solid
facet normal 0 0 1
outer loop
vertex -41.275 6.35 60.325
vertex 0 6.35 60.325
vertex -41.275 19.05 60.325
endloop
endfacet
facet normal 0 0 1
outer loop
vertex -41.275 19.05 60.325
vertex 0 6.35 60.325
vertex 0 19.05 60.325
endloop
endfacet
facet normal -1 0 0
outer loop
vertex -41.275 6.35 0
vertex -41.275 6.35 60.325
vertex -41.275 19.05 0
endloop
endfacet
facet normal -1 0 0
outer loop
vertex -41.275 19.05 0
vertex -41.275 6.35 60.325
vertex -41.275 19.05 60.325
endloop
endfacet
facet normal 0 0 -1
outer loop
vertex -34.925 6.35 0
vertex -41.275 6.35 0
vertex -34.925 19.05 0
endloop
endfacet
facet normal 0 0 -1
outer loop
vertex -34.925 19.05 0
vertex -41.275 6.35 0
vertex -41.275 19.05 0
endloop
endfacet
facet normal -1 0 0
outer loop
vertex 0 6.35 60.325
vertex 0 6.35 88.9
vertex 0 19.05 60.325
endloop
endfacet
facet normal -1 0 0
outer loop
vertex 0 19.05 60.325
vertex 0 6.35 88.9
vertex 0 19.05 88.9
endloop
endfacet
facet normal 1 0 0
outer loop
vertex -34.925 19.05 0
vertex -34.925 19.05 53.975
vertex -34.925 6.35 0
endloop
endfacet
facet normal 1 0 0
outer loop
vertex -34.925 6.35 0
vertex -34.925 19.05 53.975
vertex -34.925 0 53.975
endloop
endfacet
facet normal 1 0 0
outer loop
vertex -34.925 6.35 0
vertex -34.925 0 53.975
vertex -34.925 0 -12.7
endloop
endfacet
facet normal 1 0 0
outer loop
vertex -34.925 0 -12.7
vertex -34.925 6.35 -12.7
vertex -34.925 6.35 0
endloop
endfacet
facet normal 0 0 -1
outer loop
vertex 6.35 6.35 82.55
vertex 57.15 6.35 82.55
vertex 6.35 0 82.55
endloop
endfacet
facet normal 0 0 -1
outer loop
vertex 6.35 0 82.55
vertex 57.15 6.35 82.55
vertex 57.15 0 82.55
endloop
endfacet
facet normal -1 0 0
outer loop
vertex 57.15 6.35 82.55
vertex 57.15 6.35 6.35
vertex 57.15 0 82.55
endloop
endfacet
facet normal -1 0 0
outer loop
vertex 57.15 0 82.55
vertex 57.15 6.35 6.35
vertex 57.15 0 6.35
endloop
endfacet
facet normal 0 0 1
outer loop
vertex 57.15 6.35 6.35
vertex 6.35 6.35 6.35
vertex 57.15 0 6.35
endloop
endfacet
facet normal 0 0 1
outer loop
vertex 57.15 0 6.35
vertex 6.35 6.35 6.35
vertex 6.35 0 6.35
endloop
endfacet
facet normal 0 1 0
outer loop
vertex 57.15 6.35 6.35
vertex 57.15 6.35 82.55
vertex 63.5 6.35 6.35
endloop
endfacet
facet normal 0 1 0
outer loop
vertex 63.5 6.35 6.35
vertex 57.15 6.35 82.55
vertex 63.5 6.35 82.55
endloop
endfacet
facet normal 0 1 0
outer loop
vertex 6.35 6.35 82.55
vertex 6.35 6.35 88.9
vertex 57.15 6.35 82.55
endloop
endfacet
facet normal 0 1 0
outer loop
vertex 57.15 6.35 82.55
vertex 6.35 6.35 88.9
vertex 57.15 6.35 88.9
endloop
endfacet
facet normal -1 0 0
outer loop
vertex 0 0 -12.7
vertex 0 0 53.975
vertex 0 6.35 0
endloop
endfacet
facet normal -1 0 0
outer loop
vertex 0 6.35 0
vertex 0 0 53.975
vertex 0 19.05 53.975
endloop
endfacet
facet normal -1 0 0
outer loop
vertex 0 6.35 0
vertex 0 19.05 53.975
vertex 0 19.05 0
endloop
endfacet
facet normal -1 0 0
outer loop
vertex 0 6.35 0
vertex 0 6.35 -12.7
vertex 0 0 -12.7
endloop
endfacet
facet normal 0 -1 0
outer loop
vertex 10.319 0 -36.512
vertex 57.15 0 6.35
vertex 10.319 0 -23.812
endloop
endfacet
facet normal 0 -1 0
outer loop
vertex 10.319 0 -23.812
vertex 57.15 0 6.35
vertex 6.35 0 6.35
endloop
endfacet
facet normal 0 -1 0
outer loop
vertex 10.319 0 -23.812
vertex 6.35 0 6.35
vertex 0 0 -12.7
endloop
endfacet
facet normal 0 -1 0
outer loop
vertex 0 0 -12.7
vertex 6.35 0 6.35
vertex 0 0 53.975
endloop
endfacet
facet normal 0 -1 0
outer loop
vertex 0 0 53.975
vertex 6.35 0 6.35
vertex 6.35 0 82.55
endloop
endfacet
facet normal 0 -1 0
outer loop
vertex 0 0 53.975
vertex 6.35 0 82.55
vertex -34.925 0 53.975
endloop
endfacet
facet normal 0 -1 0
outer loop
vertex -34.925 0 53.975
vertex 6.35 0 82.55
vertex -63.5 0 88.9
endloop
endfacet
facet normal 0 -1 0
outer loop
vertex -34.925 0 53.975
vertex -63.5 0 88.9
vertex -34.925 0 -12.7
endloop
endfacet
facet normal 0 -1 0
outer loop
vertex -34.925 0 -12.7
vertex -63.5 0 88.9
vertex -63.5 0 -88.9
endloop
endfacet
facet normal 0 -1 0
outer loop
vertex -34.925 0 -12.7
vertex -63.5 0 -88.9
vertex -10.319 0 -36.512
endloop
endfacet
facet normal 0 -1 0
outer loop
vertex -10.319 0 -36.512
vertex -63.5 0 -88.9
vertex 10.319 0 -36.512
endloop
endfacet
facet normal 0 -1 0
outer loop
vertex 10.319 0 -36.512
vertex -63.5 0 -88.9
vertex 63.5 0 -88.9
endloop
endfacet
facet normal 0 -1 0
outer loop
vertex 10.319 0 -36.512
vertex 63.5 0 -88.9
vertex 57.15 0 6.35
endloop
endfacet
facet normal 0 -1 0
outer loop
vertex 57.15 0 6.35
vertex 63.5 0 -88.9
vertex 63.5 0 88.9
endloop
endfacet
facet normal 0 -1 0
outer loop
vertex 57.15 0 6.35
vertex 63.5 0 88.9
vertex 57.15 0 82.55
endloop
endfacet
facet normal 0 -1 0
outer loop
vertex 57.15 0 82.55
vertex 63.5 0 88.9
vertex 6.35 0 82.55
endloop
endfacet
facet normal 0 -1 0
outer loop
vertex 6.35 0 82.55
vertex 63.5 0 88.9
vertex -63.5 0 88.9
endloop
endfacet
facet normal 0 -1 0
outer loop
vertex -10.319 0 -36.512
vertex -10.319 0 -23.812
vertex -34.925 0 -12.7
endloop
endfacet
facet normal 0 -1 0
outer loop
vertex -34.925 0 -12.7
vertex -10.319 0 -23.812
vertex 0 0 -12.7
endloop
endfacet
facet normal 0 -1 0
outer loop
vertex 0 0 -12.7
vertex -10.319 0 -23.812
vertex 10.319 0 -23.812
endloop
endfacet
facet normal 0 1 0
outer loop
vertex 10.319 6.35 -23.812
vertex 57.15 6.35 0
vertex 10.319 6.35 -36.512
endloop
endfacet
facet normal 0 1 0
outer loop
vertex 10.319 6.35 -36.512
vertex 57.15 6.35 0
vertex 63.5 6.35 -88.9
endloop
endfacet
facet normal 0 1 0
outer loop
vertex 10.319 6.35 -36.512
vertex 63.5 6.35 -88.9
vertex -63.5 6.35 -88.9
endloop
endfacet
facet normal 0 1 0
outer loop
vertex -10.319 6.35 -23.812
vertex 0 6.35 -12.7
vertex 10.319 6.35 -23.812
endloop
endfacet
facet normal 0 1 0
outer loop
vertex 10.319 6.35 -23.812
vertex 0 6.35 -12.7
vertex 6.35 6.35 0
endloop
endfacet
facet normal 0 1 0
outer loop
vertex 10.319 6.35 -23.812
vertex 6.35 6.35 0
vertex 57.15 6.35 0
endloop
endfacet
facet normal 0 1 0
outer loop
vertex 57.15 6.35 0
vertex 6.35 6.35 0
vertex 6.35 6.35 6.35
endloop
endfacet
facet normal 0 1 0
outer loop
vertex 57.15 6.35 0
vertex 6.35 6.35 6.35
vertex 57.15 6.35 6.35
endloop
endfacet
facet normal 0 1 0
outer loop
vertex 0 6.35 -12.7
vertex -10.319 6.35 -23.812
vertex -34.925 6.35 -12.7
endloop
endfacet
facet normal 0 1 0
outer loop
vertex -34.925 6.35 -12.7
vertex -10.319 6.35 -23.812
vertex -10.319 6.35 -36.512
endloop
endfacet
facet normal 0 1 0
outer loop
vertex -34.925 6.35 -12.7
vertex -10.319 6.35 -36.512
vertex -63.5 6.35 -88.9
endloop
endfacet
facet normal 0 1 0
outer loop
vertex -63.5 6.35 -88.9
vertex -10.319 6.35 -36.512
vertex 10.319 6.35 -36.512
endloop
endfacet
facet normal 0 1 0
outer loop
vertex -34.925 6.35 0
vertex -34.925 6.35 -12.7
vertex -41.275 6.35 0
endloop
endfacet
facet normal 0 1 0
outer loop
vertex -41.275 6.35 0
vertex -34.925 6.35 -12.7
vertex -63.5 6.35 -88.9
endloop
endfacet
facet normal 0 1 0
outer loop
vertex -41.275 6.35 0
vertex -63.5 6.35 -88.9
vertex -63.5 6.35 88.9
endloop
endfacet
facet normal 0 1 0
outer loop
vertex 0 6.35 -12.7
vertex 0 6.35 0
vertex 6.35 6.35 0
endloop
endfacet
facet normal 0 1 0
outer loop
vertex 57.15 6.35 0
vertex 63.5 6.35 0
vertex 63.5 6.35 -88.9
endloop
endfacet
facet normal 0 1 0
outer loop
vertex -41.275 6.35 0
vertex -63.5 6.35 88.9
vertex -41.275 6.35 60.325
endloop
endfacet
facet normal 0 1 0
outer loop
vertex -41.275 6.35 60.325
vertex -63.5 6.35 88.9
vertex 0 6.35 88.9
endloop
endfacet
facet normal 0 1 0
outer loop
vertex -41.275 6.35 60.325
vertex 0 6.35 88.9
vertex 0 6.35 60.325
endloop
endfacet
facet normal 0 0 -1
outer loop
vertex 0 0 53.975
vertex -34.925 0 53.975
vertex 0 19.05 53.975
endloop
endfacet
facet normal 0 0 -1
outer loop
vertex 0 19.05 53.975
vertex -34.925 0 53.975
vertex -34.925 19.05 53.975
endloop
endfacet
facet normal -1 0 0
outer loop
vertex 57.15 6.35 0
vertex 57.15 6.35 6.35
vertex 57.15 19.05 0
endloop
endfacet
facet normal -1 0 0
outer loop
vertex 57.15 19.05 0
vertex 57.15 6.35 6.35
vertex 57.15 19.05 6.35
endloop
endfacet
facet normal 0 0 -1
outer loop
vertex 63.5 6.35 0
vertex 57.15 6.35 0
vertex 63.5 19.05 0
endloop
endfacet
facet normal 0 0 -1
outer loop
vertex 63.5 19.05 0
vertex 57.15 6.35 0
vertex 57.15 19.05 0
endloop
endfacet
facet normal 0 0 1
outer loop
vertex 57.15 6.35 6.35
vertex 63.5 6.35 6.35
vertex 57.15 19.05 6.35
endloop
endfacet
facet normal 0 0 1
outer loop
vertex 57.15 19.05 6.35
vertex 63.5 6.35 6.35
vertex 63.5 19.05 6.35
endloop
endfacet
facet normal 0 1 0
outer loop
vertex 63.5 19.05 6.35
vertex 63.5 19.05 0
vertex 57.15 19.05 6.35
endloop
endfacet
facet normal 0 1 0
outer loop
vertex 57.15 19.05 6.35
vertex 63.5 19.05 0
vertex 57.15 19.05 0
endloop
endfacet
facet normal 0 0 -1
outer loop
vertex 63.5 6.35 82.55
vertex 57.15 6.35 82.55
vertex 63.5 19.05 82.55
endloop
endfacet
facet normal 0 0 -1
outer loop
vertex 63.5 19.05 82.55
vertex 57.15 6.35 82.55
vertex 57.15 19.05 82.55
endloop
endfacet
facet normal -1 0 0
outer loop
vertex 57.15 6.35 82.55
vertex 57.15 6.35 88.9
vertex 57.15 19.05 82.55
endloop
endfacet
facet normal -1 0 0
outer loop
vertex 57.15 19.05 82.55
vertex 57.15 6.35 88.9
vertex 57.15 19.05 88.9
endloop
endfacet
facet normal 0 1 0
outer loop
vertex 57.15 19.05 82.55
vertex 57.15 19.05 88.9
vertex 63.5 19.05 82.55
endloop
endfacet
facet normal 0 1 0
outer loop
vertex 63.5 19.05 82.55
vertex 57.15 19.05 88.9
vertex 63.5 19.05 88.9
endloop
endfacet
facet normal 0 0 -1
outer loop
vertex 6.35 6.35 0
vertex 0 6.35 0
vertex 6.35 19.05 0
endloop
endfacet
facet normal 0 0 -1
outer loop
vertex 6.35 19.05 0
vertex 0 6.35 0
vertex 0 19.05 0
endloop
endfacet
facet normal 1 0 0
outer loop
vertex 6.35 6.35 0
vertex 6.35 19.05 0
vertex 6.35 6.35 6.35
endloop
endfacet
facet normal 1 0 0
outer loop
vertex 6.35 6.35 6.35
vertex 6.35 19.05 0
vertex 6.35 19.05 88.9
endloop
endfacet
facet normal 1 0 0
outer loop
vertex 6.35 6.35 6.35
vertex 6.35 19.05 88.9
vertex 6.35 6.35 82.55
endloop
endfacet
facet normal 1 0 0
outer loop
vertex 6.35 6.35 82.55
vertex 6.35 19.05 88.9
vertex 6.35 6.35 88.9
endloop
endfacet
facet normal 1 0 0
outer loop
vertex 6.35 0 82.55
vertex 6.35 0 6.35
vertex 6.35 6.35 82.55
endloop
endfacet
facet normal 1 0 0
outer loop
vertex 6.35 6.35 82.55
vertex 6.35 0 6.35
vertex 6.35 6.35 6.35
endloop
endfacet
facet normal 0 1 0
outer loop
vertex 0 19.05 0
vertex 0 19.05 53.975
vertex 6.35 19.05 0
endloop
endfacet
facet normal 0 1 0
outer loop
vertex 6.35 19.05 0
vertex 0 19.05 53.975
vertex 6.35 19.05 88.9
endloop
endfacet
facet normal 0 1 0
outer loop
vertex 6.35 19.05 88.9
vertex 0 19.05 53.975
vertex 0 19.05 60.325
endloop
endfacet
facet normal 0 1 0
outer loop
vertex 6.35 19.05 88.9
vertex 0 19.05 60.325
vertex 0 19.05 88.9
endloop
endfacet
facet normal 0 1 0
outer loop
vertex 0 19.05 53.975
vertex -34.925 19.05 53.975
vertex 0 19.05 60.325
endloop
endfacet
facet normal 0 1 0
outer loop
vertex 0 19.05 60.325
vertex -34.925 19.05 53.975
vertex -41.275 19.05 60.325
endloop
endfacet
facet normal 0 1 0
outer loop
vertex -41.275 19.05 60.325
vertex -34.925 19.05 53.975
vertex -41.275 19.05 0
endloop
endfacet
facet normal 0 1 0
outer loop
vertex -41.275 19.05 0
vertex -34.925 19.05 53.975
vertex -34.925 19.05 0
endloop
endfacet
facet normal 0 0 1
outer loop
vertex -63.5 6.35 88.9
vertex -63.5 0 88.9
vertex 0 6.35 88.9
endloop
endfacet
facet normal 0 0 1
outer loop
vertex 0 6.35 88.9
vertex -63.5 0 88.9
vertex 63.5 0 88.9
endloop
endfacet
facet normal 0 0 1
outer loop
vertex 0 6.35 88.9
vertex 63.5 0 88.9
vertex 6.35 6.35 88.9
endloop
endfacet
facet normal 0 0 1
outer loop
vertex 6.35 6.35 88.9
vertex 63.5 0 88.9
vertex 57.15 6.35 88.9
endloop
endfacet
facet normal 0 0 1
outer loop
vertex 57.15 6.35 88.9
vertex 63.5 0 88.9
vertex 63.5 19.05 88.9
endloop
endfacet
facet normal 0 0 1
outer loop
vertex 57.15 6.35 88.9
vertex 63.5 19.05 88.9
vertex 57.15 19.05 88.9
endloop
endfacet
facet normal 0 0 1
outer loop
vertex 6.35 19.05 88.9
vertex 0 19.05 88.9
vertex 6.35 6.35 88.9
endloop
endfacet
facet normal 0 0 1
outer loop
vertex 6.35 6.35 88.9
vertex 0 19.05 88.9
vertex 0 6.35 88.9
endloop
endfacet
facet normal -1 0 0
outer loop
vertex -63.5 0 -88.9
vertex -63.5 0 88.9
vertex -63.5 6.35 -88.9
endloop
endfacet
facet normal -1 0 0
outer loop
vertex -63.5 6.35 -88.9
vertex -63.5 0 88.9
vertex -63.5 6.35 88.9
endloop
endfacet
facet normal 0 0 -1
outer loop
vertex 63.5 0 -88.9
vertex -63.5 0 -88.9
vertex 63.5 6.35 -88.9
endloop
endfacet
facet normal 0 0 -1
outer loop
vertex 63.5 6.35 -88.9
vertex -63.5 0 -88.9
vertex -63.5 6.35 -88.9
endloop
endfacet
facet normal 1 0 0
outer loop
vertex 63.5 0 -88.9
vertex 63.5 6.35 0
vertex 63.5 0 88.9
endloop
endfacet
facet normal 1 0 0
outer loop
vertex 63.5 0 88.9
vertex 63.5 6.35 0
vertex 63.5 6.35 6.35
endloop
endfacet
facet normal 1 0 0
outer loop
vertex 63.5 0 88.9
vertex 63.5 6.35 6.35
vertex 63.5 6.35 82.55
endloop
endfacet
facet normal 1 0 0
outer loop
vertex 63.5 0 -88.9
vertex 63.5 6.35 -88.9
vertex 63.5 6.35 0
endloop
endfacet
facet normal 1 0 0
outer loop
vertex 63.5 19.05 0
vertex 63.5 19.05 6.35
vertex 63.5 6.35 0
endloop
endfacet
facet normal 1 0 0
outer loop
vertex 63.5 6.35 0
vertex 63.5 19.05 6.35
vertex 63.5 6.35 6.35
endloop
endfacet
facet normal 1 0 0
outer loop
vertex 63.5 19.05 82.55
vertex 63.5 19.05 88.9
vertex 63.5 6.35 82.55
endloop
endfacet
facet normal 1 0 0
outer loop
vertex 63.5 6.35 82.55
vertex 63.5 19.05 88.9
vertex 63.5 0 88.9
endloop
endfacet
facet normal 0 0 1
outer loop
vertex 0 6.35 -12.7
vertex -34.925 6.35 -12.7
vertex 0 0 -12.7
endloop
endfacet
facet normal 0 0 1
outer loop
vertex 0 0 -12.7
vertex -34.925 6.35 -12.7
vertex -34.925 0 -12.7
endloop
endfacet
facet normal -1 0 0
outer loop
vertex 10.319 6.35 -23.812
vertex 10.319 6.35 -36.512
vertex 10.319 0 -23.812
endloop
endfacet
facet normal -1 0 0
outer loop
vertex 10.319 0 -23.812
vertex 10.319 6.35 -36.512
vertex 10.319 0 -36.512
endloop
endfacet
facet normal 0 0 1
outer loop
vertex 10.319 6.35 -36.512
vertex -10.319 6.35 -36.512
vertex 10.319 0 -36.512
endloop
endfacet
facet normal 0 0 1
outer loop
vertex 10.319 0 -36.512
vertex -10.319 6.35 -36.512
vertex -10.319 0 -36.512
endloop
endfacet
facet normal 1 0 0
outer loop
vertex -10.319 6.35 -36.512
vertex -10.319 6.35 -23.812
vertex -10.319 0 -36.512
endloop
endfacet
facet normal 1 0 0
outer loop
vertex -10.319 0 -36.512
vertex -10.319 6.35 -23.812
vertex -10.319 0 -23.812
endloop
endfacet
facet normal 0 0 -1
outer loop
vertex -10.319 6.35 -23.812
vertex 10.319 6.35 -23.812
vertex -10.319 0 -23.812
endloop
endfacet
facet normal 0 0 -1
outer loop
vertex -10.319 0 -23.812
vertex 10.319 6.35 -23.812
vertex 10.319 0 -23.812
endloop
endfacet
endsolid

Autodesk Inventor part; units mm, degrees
ref_plane "YZ Plane" through (0, 0, 0) normal (1, 0, 0) x (0, 1, 0)
ref_plane "XZ Plane" through (0, 0, 0) normal (0, 1, 0) x (-1, 0, 0)
ref_plane "XY Plane" through (0, 0, 0) normal (0, 0, 1) x (1, 0, 0)
sketch "Sketch1" plane through (0, 0, 0) normal (0, 1, 0) x (-1, 0, 0)
  line L0 (63.5, 88.9) -> (-63.5, 88.9)
  line L1 (-63.5, 88.9) -> (-63.5, -88.9)
  line L2 (-63.5, -88.9) -> (63.5, -88.9)
  line L3 (63.5, -88.9) -> (63.5, 88.9)
  line L4 (63.5, 88.9) -> (-63.5, -88.9) construction
  line L5 (-63.5, 88.9) -> (63.5, -88.9) construction
  point P0 (0, 0)
  dimension "d0" = 177.8
  dimension "d1" = 127
extrude "main plate" add sketch "Sketch1" along normal blind 6.35
sketch "Sketch4" plane through (0, 6.35, 0) normal (0, 1, 0) x (1, 0, 0)
  line L0 (63.5, -88.9) -> (63.5, 88.9) projected
  line L1 (63.5, -88.9) -> (57.15, -88.9)
  line L2 (57.15, -88.9) -> (57.15, -82.55)
  line L3 (57.15, -82.55) -> (63.5, -82.55)
  line L4 (63.5, -82.55) -> (63.5, -88.9)
  line L5 (57.15, -82.55) -> (6.35, -82.55) construction
  line L6 (57.15, -82.55) -> (57.15, -6.35) construction
  line L7 (57.15, -6.35) -> (63.5, -6.35)
  line L8 (63.5, -6.35) -> (63.5, 0)
  line L9 (63.5, 0) -> (57.15, 0)
  line L10 (57.15, 0) -> (57.15, -6.35)
  line L11 (-63.5, -88.9) -> (63.5, -88.9) projected
  line L12 (6.35, -82.55) -> (0, -82.55)
  line L13 (0, -82.55) -> (0, -88.9)
  line L14 (0, -88.9) -> (6.35, -88.9)
  line L15 (6.35, -88.9) -> (6.35, -82.55)
  line L16 (0, 0) -> (6.35, 0)
  line L17 (6.35, 0) -> (6.35, -6.35)
  line L18 (6.35, -6.35) -> (0, -6.35)
  line L19 (0, -6.35) -> (0, 0)
  line L20 (6.35, -6.35) -> (0, -6.35)
  line L21 (0, -6.35) -> (0, -82.55)
  line L22 (0, -82.55) -> (6.35, -82.55)
  line L23 (6.35, -82.55) -> (6.35, -6.35)
  dimension "d12" = 6.35
  dimension "d13" = 6.35
  dimension "d14" = 50.8
  dimension "d15" = 76.2
extrude "battery standoffs" add sketch "Sketch4" along normal blind 12.7
sketch "Sketch5" plane through (0, 6.35, 0) normal (0, 1, 0) x (1, 0, 0)
  line L0 (-34.925, -6.35) -> (0, -6.35)
  line L1 (0, -6.35) -> (0, -53.975)
  line L2 (0, -53.975) -> (-34.925, -53.975)
  line L3 (-34.925, -53.975) -> (-34.925, -6.35)
  line L4 (-34.925, -6.35) -> (0, -6.35)
  line L5 (0, -6.35) -> (0, -53.975)
  line L6 (0, -53.975) -> (-34.925, -53.975)
  line L7 (-34.925, -53.975) -> (-34.925, -6.35)
  point P0 (0, 0)
  dimension "d18" = 34.925
  dimension "d19" = 47.625
extrude "breadboard hole" cut sketch "Sketch5" against normal blind 6.35
sketch "Sketch6" plane through (0, 6.35, 0) normal (0, 1, 0) x (1, 0, 0)
  line L0 (6.35, 0) -> (6.35, -6.35) projected
  line L1 (6.35, -6.35) -> (57.15, -6.35)
  line L2 (57.15, -6.35) -> (57.15, -82.55)
  line L3 (57.15, -82.55) -> (6.35, -82.55)
  line L4 (6.35, -82.55) -> (6.35, -6.35)
  point P0 (0, 0)
extrude "battery hole" cut sketch "Sketch6" against normal blind 6.35
sketch "Sketch9" plane through (0, 6.35, 0) normal (0, 1, 0) x (1, 0, 0)
  line L0 (0, -53.975) -> (0, -6.35) projected
  line L1 (0, -53.975) -> (-34.925, -53.975)
  line L2 (-34.925, -53.975) -> (-34.925, -60.325)
  line L3 (-34.925, -60.325) -> (0, -60.325)
  line L4 (0, -60.325) -> (0, -53.975)
  line L5 (-34.925, -60.325) -> (-41.275, -60.325)
  line L6 (-41.275, -60.325) -> (-41.275, 0)
  line L7 (-41.275, 0) -> (-34.925, 0)
  line L8 (-34.925, 0) -> (-34.925, -60.325)
  line L9 (0, 0) -> (0, -6.35)
  line L10 (-34.925, -6.35) -> (-34.925, 0)
  point P0 (0, 0)
extrude "breadboard standoffs" add sketch "Sketch9" along normal blind 12.7
sketch "Sketch10" plane through (0, 6.35, 0) normal (0, 1, 0) x (1, 0, 0)
  line L0 (-34.925, 0) -> (-34.925, -6.35) projected
  line L1 (-34.925, -6.35) -> (0, -6.35)
  line L2 (0, -6.35) -> (0, 12.7)
  line L3 (0, 12.7) -> (-34.925, 12.7)
  line L4 (-34.925, 12.7) -> (-34.925, -6.35)
  point P0 (0, 0)
extrude "wiring hole" cut sketch "Sketch10" against normal blind 6.35
sketch "Sketch11" plane through (0, 6.35, 0) normal (0, 1, 0) x (1, 0, 0)
  line L0 (-10.3188, 36.5125) -> (10.3187, 36.5125)
  line L1 (10.3187, 36.5125) -> (10.3187, 23.8125)
  line L2 (10.3187, 23.8125) -> (-10.3187, 23.8125)
  line L3 (-10.3187, 23.8125) -> (-10.3188, 36.5125)
  line L4 (-10.3188, 36.5125) -> (10.3187, 23.8125) construction
  line L5 (10.3187, 36.5125) -> (-10.3187, 23.8125) construction
  point P0 (0, 0)
  point P1 (0, 30.1625)
  dimension "d28" = 12.7
  dimension "d29" = 20.6375
extrude "power switch mount" cut sketch "Sketch11" against normal blind 6.35
properties part number "chassis_top"
